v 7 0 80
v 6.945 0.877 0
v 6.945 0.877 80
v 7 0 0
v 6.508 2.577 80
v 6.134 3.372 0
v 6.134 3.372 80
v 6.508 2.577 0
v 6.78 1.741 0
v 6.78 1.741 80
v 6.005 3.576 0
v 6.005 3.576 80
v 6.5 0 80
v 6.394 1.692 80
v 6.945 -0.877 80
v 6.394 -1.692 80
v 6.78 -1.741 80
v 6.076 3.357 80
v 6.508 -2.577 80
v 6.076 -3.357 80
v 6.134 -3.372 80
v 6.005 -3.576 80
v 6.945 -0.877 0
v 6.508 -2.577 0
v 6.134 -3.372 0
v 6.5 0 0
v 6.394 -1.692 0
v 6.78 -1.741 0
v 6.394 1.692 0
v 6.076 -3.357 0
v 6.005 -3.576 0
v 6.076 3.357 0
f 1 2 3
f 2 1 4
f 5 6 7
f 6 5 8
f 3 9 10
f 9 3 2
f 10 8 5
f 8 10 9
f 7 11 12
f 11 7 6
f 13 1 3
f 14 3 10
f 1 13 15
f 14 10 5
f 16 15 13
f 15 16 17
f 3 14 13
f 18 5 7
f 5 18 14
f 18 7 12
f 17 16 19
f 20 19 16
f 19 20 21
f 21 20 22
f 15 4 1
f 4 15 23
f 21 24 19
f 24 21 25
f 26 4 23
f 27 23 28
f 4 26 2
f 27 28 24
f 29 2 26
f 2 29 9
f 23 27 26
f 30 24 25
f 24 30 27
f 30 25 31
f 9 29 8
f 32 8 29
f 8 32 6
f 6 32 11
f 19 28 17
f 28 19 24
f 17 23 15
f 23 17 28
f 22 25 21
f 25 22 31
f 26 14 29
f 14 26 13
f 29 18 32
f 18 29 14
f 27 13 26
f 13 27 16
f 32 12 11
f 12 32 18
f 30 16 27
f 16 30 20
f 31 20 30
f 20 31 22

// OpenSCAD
$fn = 50;


difference() {
	union() {
		cylinder(h = 80, r = 7.0000000000);
		translate(v = [-10.0000000000, 0, 0]) {
			cylinder(h = 80, r = 7.0000000000);
		}
	}
	union() {
		cylinder(h = 80, r = 3.2500000000);
		cylinder(h = 80, r = 1.8000000000);
		cylinder(h = 80, r = 1.8000000000);
		cylinder(h = 80, r = 1.8000000000);
		translate(v = [-14.5000000000, 0, 0]) {
			hull() {
				translate(v = [-3.7500000000, 0.0000000000, 0]) {
					cylinder(h = 80, r = 10.5000000000);
				}
				translate(v = [3.7500000000, 0.0000000000, 0]) {
					cylinder(h = 80, r = 10.5000000000);
				}
				translate(v = [-3.7500000000, -0.0000000000, 0]) {
					cylinder(h = 80, r = 10.5000000000);
				}
				translate(v = [3.7500000000, -0.0000000000, 0]) {
					cylinder(h = 80, r = 10.5000000000);
				}
			}
		}
		translate(v = [-7.0000000000, 0, 0.0000000000]) {
			cylinder(h = 80, r = 13.5000000000);
		}
	}
}
